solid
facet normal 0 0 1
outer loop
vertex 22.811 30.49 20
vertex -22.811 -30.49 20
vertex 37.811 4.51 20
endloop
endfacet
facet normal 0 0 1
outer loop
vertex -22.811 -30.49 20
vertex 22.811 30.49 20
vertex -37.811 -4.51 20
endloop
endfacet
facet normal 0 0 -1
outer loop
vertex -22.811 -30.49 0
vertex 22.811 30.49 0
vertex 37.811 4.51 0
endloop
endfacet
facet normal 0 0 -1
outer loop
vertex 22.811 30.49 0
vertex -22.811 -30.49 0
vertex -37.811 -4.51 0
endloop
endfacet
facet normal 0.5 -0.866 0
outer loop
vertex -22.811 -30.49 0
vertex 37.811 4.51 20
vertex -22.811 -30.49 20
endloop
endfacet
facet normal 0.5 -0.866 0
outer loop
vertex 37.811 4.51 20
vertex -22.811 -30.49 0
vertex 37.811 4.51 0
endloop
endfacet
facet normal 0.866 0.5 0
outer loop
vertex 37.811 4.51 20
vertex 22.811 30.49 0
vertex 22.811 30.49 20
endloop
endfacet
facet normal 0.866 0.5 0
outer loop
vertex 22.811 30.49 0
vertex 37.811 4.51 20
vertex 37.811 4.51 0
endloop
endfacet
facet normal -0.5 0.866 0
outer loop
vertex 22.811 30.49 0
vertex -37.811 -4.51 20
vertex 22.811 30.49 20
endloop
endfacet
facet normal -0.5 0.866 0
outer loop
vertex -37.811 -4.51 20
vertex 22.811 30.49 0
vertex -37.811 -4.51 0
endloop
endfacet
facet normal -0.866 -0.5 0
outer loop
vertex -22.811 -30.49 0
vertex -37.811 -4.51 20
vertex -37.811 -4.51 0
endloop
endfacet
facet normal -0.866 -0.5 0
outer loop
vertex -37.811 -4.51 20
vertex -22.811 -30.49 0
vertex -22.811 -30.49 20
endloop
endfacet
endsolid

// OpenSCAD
// Define dimensions for the rectangular block
block_length = 70;  // Increased length to match the original model
block_width = 30;   // Increased width to match the original model
block_height = 20;  // Increased height to match the original model

// Generate the rectangular block
module rectangular_block() {
    cube([block_length, block_width, block_height], center = true);
}

// Assemble the model with adjustments for rotation and position
translate([0, 0, 10])  // Adjusted vertical position to align with the original model
rotate([0, 0, 30])     // Adjusted rotation to match the original model
rectangular_block();
